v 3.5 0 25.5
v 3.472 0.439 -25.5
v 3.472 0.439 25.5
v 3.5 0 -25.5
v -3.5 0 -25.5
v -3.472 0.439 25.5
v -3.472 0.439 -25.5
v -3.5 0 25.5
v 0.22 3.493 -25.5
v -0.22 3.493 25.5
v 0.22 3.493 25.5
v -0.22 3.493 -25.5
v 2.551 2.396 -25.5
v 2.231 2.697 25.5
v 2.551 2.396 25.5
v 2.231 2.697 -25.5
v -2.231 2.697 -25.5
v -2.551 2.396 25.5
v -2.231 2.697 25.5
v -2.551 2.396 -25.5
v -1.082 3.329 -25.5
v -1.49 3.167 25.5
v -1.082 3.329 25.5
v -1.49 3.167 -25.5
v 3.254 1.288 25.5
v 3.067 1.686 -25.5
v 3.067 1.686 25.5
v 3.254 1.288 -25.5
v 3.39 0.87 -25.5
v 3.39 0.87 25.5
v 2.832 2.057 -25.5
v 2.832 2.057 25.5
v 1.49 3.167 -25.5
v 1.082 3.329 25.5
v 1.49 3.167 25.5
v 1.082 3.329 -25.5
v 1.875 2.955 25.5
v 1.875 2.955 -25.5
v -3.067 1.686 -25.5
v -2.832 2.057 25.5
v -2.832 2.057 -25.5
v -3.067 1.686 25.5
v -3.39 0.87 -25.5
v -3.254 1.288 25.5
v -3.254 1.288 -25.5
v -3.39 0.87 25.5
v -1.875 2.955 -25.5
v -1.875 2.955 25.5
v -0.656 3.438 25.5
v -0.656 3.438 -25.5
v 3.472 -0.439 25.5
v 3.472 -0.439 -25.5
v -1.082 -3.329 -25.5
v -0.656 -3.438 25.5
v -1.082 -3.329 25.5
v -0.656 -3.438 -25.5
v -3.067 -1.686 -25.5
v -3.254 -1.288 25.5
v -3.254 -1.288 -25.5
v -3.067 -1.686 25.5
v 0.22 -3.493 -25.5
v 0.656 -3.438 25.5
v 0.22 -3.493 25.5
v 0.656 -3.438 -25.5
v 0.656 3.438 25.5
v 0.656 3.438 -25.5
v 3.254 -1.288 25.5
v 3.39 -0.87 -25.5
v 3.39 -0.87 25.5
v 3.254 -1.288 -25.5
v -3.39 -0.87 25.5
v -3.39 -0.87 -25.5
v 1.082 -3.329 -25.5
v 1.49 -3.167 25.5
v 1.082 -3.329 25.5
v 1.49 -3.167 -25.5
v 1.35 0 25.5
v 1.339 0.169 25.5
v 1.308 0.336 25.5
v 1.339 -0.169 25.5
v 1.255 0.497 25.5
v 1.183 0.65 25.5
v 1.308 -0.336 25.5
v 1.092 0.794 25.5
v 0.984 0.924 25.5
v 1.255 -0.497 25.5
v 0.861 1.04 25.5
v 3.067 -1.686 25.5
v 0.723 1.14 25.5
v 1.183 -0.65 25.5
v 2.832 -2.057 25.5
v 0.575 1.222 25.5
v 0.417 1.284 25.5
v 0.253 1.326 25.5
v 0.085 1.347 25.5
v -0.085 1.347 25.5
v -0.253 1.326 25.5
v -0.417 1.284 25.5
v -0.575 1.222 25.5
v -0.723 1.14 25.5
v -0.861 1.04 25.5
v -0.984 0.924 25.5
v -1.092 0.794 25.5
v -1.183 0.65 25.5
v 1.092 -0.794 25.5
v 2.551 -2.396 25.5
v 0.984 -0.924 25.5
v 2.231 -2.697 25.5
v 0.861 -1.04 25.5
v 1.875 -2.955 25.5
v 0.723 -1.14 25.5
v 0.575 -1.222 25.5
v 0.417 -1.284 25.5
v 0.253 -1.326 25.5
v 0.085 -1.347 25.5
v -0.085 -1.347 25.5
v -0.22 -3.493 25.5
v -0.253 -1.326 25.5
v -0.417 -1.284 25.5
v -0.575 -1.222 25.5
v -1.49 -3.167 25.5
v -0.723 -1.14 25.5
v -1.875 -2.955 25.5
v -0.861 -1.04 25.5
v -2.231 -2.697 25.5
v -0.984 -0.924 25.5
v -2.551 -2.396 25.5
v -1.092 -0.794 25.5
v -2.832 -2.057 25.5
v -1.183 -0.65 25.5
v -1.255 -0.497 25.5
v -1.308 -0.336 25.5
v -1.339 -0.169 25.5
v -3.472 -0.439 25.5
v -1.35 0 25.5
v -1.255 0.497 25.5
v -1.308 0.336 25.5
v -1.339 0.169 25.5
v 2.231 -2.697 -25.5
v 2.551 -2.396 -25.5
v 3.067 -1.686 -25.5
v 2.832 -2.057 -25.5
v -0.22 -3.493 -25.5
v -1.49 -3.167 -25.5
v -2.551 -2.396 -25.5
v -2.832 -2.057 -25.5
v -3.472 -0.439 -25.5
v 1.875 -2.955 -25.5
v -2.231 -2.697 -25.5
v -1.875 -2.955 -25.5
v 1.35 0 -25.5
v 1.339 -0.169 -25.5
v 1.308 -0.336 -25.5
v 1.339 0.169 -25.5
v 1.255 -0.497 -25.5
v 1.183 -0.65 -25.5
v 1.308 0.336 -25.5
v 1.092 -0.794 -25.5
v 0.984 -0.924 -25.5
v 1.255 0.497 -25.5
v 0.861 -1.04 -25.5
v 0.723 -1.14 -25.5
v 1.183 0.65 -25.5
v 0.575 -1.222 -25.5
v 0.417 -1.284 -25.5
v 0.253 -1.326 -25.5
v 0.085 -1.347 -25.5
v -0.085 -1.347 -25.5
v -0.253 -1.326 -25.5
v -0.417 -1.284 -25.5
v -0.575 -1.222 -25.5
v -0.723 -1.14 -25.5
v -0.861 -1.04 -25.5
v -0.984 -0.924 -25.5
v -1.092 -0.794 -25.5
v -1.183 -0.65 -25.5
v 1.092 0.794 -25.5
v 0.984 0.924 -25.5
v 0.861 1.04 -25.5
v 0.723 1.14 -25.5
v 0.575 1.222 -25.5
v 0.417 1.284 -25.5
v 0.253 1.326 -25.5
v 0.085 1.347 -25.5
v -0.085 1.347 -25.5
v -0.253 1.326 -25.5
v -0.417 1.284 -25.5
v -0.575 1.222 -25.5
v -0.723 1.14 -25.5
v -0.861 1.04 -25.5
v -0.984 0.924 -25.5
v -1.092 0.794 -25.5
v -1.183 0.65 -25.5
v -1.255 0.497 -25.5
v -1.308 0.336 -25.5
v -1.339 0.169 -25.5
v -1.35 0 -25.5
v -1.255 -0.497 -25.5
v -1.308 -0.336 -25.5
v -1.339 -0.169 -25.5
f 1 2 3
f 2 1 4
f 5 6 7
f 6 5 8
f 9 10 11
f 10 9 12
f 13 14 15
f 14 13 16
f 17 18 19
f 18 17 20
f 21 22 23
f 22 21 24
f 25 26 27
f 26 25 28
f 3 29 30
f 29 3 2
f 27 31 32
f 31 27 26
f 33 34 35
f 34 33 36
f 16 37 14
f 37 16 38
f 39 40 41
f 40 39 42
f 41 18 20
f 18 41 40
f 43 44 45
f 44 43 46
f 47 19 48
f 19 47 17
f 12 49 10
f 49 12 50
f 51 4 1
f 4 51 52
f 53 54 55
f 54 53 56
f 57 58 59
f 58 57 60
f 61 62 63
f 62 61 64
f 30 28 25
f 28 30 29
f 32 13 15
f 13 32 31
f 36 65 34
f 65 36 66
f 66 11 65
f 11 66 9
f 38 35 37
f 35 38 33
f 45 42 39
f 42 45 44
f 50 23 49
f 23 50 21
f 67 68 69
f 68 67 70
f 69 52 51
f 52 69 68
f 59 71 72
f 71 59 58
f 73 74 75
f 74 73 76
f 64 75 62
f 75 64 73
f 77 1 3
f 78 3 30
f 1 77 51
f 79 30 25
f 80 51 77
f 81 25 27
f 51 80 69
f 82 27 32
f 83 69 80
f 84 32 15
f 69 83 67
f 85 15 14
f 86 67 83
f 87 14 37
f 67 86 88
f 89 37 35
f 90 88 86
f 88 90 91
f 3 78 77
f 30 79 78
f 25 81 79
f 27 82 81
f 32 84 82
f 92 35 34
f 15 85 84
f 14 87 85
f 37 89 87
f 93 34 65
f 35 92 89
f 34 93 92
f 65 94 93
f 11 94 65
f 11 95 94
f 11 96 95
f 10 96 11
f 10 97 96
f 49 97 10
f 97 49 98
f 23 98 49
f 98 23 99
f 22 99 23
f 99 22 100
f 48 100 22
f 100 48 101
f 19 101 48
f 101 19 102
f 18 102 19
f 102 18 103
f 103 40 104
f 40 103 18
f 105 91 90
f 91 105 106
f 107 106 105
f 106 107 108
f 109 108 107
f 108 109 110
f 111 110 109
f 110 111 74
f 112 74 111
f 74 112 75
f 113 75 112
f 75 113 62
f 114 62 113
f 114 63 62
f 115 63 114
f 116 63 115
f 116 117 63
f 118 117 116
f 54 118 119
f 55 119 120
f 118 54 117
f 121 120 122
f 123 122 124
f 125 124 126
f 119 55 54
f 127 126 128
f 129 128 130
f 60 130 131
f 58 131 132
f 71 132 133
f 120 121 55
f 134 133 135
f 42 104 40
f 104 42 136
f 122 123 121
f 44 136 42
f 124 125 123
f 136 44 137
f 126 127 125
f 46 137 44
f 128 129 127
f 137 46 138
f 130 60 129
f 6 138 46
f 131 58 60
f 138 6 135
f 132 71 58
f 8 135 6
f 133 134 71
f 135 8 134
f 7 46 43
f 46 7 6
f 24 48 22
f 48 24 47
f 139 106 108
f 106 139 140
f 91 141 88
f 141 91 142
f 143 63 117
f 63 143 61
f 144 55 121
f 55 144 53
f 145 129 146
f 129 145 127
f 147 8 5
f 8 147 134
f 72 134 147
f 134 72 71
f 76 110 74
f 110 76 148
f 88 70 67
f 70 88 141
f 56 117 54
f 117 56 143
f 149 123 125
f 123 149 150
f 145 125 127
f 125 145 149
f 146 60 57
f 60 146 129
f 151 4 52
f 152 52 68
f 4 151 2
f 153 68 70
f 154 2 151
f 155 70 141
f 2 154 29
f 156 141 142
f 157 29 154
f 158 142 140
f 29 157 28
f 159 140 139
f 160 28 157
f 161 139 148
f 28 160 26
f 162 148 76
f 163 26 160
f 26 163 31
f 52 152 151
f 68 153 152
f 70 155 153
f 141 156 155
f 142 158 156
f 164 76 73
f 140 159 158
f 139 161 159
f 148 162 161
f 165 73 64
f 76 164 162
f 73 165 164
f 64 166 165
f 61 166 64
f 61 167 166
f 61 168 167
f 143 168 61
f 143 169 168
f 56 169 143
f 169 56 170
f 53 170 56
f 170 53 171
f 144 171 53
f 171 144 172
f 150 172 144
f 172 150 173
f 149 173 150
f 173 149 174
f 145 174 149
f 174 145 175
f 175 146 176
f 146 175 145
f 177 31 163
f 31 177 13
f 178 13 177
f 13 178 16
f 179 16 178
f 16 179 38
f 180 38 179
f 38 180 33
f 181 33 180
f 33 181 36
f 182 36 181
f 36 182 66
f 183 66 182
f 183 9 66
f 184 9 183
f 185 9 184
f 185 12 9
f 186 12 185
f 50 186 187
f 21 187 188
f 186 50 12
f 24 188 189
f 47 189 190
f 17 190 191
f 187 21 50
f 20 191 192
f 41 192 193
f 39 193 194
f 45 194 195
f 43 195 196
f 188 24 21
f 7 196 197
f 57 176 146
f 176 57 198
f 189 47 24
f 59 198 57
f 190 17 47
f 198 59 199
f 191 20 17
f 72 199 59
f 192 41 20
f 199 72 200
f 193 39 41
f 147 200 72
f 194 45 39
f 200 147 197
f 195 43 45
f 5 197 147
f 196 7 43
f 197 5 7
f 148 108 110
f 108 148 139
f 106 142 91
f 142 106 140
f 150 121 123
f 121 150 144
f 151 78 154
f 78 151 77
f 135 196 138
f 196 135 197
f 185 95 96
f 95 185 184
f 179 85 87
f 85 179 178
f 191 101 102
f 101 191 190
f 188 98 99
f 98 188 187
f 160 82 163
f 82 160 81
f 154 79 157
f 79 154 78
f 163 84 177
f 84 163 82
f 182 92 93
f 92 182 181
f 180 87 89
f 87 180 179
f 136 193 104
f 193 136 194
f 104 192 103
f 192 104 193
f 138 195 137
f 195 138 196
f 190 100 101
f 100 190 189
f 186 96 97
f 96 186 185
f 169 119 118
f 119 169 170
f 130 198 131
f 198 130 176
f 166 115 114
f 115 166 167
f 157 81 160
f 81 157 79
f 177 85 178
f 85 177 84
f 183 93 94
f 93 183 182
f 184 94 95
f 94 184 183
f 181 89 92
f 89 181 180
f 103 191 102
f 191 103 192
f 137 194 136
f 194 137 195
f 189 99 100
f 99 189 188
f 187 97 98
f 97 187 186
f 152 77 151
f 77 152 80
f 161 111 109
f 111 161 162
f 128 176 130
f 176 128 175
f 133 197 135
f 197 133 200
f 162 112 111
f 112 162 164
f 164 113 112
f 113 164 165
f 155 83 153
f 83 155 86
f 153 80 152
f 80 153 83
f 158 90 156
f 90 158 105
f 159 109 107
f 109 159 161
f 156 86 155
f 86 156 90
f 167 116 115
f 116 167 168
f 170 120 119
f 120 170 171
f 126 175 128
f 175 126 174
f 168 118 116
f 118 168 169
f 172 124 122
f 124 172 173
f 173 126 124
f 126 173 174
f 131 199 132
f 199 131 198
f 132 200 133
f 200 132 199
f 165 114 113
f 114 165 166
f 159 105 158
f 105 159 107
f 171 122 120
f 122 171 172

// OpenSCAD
$fn = 50;


difference() {
	union() {
		translate(v = [0, 0, -25.5000000000]) {
			cylinder(h = 51, r = 3.5000000000);
		}
	}
	union() {
		translate(v = [0, 0, -100.0000000000]) {
			cylinder(h = 200, r = 1.3500000000);
		}
	}
}
